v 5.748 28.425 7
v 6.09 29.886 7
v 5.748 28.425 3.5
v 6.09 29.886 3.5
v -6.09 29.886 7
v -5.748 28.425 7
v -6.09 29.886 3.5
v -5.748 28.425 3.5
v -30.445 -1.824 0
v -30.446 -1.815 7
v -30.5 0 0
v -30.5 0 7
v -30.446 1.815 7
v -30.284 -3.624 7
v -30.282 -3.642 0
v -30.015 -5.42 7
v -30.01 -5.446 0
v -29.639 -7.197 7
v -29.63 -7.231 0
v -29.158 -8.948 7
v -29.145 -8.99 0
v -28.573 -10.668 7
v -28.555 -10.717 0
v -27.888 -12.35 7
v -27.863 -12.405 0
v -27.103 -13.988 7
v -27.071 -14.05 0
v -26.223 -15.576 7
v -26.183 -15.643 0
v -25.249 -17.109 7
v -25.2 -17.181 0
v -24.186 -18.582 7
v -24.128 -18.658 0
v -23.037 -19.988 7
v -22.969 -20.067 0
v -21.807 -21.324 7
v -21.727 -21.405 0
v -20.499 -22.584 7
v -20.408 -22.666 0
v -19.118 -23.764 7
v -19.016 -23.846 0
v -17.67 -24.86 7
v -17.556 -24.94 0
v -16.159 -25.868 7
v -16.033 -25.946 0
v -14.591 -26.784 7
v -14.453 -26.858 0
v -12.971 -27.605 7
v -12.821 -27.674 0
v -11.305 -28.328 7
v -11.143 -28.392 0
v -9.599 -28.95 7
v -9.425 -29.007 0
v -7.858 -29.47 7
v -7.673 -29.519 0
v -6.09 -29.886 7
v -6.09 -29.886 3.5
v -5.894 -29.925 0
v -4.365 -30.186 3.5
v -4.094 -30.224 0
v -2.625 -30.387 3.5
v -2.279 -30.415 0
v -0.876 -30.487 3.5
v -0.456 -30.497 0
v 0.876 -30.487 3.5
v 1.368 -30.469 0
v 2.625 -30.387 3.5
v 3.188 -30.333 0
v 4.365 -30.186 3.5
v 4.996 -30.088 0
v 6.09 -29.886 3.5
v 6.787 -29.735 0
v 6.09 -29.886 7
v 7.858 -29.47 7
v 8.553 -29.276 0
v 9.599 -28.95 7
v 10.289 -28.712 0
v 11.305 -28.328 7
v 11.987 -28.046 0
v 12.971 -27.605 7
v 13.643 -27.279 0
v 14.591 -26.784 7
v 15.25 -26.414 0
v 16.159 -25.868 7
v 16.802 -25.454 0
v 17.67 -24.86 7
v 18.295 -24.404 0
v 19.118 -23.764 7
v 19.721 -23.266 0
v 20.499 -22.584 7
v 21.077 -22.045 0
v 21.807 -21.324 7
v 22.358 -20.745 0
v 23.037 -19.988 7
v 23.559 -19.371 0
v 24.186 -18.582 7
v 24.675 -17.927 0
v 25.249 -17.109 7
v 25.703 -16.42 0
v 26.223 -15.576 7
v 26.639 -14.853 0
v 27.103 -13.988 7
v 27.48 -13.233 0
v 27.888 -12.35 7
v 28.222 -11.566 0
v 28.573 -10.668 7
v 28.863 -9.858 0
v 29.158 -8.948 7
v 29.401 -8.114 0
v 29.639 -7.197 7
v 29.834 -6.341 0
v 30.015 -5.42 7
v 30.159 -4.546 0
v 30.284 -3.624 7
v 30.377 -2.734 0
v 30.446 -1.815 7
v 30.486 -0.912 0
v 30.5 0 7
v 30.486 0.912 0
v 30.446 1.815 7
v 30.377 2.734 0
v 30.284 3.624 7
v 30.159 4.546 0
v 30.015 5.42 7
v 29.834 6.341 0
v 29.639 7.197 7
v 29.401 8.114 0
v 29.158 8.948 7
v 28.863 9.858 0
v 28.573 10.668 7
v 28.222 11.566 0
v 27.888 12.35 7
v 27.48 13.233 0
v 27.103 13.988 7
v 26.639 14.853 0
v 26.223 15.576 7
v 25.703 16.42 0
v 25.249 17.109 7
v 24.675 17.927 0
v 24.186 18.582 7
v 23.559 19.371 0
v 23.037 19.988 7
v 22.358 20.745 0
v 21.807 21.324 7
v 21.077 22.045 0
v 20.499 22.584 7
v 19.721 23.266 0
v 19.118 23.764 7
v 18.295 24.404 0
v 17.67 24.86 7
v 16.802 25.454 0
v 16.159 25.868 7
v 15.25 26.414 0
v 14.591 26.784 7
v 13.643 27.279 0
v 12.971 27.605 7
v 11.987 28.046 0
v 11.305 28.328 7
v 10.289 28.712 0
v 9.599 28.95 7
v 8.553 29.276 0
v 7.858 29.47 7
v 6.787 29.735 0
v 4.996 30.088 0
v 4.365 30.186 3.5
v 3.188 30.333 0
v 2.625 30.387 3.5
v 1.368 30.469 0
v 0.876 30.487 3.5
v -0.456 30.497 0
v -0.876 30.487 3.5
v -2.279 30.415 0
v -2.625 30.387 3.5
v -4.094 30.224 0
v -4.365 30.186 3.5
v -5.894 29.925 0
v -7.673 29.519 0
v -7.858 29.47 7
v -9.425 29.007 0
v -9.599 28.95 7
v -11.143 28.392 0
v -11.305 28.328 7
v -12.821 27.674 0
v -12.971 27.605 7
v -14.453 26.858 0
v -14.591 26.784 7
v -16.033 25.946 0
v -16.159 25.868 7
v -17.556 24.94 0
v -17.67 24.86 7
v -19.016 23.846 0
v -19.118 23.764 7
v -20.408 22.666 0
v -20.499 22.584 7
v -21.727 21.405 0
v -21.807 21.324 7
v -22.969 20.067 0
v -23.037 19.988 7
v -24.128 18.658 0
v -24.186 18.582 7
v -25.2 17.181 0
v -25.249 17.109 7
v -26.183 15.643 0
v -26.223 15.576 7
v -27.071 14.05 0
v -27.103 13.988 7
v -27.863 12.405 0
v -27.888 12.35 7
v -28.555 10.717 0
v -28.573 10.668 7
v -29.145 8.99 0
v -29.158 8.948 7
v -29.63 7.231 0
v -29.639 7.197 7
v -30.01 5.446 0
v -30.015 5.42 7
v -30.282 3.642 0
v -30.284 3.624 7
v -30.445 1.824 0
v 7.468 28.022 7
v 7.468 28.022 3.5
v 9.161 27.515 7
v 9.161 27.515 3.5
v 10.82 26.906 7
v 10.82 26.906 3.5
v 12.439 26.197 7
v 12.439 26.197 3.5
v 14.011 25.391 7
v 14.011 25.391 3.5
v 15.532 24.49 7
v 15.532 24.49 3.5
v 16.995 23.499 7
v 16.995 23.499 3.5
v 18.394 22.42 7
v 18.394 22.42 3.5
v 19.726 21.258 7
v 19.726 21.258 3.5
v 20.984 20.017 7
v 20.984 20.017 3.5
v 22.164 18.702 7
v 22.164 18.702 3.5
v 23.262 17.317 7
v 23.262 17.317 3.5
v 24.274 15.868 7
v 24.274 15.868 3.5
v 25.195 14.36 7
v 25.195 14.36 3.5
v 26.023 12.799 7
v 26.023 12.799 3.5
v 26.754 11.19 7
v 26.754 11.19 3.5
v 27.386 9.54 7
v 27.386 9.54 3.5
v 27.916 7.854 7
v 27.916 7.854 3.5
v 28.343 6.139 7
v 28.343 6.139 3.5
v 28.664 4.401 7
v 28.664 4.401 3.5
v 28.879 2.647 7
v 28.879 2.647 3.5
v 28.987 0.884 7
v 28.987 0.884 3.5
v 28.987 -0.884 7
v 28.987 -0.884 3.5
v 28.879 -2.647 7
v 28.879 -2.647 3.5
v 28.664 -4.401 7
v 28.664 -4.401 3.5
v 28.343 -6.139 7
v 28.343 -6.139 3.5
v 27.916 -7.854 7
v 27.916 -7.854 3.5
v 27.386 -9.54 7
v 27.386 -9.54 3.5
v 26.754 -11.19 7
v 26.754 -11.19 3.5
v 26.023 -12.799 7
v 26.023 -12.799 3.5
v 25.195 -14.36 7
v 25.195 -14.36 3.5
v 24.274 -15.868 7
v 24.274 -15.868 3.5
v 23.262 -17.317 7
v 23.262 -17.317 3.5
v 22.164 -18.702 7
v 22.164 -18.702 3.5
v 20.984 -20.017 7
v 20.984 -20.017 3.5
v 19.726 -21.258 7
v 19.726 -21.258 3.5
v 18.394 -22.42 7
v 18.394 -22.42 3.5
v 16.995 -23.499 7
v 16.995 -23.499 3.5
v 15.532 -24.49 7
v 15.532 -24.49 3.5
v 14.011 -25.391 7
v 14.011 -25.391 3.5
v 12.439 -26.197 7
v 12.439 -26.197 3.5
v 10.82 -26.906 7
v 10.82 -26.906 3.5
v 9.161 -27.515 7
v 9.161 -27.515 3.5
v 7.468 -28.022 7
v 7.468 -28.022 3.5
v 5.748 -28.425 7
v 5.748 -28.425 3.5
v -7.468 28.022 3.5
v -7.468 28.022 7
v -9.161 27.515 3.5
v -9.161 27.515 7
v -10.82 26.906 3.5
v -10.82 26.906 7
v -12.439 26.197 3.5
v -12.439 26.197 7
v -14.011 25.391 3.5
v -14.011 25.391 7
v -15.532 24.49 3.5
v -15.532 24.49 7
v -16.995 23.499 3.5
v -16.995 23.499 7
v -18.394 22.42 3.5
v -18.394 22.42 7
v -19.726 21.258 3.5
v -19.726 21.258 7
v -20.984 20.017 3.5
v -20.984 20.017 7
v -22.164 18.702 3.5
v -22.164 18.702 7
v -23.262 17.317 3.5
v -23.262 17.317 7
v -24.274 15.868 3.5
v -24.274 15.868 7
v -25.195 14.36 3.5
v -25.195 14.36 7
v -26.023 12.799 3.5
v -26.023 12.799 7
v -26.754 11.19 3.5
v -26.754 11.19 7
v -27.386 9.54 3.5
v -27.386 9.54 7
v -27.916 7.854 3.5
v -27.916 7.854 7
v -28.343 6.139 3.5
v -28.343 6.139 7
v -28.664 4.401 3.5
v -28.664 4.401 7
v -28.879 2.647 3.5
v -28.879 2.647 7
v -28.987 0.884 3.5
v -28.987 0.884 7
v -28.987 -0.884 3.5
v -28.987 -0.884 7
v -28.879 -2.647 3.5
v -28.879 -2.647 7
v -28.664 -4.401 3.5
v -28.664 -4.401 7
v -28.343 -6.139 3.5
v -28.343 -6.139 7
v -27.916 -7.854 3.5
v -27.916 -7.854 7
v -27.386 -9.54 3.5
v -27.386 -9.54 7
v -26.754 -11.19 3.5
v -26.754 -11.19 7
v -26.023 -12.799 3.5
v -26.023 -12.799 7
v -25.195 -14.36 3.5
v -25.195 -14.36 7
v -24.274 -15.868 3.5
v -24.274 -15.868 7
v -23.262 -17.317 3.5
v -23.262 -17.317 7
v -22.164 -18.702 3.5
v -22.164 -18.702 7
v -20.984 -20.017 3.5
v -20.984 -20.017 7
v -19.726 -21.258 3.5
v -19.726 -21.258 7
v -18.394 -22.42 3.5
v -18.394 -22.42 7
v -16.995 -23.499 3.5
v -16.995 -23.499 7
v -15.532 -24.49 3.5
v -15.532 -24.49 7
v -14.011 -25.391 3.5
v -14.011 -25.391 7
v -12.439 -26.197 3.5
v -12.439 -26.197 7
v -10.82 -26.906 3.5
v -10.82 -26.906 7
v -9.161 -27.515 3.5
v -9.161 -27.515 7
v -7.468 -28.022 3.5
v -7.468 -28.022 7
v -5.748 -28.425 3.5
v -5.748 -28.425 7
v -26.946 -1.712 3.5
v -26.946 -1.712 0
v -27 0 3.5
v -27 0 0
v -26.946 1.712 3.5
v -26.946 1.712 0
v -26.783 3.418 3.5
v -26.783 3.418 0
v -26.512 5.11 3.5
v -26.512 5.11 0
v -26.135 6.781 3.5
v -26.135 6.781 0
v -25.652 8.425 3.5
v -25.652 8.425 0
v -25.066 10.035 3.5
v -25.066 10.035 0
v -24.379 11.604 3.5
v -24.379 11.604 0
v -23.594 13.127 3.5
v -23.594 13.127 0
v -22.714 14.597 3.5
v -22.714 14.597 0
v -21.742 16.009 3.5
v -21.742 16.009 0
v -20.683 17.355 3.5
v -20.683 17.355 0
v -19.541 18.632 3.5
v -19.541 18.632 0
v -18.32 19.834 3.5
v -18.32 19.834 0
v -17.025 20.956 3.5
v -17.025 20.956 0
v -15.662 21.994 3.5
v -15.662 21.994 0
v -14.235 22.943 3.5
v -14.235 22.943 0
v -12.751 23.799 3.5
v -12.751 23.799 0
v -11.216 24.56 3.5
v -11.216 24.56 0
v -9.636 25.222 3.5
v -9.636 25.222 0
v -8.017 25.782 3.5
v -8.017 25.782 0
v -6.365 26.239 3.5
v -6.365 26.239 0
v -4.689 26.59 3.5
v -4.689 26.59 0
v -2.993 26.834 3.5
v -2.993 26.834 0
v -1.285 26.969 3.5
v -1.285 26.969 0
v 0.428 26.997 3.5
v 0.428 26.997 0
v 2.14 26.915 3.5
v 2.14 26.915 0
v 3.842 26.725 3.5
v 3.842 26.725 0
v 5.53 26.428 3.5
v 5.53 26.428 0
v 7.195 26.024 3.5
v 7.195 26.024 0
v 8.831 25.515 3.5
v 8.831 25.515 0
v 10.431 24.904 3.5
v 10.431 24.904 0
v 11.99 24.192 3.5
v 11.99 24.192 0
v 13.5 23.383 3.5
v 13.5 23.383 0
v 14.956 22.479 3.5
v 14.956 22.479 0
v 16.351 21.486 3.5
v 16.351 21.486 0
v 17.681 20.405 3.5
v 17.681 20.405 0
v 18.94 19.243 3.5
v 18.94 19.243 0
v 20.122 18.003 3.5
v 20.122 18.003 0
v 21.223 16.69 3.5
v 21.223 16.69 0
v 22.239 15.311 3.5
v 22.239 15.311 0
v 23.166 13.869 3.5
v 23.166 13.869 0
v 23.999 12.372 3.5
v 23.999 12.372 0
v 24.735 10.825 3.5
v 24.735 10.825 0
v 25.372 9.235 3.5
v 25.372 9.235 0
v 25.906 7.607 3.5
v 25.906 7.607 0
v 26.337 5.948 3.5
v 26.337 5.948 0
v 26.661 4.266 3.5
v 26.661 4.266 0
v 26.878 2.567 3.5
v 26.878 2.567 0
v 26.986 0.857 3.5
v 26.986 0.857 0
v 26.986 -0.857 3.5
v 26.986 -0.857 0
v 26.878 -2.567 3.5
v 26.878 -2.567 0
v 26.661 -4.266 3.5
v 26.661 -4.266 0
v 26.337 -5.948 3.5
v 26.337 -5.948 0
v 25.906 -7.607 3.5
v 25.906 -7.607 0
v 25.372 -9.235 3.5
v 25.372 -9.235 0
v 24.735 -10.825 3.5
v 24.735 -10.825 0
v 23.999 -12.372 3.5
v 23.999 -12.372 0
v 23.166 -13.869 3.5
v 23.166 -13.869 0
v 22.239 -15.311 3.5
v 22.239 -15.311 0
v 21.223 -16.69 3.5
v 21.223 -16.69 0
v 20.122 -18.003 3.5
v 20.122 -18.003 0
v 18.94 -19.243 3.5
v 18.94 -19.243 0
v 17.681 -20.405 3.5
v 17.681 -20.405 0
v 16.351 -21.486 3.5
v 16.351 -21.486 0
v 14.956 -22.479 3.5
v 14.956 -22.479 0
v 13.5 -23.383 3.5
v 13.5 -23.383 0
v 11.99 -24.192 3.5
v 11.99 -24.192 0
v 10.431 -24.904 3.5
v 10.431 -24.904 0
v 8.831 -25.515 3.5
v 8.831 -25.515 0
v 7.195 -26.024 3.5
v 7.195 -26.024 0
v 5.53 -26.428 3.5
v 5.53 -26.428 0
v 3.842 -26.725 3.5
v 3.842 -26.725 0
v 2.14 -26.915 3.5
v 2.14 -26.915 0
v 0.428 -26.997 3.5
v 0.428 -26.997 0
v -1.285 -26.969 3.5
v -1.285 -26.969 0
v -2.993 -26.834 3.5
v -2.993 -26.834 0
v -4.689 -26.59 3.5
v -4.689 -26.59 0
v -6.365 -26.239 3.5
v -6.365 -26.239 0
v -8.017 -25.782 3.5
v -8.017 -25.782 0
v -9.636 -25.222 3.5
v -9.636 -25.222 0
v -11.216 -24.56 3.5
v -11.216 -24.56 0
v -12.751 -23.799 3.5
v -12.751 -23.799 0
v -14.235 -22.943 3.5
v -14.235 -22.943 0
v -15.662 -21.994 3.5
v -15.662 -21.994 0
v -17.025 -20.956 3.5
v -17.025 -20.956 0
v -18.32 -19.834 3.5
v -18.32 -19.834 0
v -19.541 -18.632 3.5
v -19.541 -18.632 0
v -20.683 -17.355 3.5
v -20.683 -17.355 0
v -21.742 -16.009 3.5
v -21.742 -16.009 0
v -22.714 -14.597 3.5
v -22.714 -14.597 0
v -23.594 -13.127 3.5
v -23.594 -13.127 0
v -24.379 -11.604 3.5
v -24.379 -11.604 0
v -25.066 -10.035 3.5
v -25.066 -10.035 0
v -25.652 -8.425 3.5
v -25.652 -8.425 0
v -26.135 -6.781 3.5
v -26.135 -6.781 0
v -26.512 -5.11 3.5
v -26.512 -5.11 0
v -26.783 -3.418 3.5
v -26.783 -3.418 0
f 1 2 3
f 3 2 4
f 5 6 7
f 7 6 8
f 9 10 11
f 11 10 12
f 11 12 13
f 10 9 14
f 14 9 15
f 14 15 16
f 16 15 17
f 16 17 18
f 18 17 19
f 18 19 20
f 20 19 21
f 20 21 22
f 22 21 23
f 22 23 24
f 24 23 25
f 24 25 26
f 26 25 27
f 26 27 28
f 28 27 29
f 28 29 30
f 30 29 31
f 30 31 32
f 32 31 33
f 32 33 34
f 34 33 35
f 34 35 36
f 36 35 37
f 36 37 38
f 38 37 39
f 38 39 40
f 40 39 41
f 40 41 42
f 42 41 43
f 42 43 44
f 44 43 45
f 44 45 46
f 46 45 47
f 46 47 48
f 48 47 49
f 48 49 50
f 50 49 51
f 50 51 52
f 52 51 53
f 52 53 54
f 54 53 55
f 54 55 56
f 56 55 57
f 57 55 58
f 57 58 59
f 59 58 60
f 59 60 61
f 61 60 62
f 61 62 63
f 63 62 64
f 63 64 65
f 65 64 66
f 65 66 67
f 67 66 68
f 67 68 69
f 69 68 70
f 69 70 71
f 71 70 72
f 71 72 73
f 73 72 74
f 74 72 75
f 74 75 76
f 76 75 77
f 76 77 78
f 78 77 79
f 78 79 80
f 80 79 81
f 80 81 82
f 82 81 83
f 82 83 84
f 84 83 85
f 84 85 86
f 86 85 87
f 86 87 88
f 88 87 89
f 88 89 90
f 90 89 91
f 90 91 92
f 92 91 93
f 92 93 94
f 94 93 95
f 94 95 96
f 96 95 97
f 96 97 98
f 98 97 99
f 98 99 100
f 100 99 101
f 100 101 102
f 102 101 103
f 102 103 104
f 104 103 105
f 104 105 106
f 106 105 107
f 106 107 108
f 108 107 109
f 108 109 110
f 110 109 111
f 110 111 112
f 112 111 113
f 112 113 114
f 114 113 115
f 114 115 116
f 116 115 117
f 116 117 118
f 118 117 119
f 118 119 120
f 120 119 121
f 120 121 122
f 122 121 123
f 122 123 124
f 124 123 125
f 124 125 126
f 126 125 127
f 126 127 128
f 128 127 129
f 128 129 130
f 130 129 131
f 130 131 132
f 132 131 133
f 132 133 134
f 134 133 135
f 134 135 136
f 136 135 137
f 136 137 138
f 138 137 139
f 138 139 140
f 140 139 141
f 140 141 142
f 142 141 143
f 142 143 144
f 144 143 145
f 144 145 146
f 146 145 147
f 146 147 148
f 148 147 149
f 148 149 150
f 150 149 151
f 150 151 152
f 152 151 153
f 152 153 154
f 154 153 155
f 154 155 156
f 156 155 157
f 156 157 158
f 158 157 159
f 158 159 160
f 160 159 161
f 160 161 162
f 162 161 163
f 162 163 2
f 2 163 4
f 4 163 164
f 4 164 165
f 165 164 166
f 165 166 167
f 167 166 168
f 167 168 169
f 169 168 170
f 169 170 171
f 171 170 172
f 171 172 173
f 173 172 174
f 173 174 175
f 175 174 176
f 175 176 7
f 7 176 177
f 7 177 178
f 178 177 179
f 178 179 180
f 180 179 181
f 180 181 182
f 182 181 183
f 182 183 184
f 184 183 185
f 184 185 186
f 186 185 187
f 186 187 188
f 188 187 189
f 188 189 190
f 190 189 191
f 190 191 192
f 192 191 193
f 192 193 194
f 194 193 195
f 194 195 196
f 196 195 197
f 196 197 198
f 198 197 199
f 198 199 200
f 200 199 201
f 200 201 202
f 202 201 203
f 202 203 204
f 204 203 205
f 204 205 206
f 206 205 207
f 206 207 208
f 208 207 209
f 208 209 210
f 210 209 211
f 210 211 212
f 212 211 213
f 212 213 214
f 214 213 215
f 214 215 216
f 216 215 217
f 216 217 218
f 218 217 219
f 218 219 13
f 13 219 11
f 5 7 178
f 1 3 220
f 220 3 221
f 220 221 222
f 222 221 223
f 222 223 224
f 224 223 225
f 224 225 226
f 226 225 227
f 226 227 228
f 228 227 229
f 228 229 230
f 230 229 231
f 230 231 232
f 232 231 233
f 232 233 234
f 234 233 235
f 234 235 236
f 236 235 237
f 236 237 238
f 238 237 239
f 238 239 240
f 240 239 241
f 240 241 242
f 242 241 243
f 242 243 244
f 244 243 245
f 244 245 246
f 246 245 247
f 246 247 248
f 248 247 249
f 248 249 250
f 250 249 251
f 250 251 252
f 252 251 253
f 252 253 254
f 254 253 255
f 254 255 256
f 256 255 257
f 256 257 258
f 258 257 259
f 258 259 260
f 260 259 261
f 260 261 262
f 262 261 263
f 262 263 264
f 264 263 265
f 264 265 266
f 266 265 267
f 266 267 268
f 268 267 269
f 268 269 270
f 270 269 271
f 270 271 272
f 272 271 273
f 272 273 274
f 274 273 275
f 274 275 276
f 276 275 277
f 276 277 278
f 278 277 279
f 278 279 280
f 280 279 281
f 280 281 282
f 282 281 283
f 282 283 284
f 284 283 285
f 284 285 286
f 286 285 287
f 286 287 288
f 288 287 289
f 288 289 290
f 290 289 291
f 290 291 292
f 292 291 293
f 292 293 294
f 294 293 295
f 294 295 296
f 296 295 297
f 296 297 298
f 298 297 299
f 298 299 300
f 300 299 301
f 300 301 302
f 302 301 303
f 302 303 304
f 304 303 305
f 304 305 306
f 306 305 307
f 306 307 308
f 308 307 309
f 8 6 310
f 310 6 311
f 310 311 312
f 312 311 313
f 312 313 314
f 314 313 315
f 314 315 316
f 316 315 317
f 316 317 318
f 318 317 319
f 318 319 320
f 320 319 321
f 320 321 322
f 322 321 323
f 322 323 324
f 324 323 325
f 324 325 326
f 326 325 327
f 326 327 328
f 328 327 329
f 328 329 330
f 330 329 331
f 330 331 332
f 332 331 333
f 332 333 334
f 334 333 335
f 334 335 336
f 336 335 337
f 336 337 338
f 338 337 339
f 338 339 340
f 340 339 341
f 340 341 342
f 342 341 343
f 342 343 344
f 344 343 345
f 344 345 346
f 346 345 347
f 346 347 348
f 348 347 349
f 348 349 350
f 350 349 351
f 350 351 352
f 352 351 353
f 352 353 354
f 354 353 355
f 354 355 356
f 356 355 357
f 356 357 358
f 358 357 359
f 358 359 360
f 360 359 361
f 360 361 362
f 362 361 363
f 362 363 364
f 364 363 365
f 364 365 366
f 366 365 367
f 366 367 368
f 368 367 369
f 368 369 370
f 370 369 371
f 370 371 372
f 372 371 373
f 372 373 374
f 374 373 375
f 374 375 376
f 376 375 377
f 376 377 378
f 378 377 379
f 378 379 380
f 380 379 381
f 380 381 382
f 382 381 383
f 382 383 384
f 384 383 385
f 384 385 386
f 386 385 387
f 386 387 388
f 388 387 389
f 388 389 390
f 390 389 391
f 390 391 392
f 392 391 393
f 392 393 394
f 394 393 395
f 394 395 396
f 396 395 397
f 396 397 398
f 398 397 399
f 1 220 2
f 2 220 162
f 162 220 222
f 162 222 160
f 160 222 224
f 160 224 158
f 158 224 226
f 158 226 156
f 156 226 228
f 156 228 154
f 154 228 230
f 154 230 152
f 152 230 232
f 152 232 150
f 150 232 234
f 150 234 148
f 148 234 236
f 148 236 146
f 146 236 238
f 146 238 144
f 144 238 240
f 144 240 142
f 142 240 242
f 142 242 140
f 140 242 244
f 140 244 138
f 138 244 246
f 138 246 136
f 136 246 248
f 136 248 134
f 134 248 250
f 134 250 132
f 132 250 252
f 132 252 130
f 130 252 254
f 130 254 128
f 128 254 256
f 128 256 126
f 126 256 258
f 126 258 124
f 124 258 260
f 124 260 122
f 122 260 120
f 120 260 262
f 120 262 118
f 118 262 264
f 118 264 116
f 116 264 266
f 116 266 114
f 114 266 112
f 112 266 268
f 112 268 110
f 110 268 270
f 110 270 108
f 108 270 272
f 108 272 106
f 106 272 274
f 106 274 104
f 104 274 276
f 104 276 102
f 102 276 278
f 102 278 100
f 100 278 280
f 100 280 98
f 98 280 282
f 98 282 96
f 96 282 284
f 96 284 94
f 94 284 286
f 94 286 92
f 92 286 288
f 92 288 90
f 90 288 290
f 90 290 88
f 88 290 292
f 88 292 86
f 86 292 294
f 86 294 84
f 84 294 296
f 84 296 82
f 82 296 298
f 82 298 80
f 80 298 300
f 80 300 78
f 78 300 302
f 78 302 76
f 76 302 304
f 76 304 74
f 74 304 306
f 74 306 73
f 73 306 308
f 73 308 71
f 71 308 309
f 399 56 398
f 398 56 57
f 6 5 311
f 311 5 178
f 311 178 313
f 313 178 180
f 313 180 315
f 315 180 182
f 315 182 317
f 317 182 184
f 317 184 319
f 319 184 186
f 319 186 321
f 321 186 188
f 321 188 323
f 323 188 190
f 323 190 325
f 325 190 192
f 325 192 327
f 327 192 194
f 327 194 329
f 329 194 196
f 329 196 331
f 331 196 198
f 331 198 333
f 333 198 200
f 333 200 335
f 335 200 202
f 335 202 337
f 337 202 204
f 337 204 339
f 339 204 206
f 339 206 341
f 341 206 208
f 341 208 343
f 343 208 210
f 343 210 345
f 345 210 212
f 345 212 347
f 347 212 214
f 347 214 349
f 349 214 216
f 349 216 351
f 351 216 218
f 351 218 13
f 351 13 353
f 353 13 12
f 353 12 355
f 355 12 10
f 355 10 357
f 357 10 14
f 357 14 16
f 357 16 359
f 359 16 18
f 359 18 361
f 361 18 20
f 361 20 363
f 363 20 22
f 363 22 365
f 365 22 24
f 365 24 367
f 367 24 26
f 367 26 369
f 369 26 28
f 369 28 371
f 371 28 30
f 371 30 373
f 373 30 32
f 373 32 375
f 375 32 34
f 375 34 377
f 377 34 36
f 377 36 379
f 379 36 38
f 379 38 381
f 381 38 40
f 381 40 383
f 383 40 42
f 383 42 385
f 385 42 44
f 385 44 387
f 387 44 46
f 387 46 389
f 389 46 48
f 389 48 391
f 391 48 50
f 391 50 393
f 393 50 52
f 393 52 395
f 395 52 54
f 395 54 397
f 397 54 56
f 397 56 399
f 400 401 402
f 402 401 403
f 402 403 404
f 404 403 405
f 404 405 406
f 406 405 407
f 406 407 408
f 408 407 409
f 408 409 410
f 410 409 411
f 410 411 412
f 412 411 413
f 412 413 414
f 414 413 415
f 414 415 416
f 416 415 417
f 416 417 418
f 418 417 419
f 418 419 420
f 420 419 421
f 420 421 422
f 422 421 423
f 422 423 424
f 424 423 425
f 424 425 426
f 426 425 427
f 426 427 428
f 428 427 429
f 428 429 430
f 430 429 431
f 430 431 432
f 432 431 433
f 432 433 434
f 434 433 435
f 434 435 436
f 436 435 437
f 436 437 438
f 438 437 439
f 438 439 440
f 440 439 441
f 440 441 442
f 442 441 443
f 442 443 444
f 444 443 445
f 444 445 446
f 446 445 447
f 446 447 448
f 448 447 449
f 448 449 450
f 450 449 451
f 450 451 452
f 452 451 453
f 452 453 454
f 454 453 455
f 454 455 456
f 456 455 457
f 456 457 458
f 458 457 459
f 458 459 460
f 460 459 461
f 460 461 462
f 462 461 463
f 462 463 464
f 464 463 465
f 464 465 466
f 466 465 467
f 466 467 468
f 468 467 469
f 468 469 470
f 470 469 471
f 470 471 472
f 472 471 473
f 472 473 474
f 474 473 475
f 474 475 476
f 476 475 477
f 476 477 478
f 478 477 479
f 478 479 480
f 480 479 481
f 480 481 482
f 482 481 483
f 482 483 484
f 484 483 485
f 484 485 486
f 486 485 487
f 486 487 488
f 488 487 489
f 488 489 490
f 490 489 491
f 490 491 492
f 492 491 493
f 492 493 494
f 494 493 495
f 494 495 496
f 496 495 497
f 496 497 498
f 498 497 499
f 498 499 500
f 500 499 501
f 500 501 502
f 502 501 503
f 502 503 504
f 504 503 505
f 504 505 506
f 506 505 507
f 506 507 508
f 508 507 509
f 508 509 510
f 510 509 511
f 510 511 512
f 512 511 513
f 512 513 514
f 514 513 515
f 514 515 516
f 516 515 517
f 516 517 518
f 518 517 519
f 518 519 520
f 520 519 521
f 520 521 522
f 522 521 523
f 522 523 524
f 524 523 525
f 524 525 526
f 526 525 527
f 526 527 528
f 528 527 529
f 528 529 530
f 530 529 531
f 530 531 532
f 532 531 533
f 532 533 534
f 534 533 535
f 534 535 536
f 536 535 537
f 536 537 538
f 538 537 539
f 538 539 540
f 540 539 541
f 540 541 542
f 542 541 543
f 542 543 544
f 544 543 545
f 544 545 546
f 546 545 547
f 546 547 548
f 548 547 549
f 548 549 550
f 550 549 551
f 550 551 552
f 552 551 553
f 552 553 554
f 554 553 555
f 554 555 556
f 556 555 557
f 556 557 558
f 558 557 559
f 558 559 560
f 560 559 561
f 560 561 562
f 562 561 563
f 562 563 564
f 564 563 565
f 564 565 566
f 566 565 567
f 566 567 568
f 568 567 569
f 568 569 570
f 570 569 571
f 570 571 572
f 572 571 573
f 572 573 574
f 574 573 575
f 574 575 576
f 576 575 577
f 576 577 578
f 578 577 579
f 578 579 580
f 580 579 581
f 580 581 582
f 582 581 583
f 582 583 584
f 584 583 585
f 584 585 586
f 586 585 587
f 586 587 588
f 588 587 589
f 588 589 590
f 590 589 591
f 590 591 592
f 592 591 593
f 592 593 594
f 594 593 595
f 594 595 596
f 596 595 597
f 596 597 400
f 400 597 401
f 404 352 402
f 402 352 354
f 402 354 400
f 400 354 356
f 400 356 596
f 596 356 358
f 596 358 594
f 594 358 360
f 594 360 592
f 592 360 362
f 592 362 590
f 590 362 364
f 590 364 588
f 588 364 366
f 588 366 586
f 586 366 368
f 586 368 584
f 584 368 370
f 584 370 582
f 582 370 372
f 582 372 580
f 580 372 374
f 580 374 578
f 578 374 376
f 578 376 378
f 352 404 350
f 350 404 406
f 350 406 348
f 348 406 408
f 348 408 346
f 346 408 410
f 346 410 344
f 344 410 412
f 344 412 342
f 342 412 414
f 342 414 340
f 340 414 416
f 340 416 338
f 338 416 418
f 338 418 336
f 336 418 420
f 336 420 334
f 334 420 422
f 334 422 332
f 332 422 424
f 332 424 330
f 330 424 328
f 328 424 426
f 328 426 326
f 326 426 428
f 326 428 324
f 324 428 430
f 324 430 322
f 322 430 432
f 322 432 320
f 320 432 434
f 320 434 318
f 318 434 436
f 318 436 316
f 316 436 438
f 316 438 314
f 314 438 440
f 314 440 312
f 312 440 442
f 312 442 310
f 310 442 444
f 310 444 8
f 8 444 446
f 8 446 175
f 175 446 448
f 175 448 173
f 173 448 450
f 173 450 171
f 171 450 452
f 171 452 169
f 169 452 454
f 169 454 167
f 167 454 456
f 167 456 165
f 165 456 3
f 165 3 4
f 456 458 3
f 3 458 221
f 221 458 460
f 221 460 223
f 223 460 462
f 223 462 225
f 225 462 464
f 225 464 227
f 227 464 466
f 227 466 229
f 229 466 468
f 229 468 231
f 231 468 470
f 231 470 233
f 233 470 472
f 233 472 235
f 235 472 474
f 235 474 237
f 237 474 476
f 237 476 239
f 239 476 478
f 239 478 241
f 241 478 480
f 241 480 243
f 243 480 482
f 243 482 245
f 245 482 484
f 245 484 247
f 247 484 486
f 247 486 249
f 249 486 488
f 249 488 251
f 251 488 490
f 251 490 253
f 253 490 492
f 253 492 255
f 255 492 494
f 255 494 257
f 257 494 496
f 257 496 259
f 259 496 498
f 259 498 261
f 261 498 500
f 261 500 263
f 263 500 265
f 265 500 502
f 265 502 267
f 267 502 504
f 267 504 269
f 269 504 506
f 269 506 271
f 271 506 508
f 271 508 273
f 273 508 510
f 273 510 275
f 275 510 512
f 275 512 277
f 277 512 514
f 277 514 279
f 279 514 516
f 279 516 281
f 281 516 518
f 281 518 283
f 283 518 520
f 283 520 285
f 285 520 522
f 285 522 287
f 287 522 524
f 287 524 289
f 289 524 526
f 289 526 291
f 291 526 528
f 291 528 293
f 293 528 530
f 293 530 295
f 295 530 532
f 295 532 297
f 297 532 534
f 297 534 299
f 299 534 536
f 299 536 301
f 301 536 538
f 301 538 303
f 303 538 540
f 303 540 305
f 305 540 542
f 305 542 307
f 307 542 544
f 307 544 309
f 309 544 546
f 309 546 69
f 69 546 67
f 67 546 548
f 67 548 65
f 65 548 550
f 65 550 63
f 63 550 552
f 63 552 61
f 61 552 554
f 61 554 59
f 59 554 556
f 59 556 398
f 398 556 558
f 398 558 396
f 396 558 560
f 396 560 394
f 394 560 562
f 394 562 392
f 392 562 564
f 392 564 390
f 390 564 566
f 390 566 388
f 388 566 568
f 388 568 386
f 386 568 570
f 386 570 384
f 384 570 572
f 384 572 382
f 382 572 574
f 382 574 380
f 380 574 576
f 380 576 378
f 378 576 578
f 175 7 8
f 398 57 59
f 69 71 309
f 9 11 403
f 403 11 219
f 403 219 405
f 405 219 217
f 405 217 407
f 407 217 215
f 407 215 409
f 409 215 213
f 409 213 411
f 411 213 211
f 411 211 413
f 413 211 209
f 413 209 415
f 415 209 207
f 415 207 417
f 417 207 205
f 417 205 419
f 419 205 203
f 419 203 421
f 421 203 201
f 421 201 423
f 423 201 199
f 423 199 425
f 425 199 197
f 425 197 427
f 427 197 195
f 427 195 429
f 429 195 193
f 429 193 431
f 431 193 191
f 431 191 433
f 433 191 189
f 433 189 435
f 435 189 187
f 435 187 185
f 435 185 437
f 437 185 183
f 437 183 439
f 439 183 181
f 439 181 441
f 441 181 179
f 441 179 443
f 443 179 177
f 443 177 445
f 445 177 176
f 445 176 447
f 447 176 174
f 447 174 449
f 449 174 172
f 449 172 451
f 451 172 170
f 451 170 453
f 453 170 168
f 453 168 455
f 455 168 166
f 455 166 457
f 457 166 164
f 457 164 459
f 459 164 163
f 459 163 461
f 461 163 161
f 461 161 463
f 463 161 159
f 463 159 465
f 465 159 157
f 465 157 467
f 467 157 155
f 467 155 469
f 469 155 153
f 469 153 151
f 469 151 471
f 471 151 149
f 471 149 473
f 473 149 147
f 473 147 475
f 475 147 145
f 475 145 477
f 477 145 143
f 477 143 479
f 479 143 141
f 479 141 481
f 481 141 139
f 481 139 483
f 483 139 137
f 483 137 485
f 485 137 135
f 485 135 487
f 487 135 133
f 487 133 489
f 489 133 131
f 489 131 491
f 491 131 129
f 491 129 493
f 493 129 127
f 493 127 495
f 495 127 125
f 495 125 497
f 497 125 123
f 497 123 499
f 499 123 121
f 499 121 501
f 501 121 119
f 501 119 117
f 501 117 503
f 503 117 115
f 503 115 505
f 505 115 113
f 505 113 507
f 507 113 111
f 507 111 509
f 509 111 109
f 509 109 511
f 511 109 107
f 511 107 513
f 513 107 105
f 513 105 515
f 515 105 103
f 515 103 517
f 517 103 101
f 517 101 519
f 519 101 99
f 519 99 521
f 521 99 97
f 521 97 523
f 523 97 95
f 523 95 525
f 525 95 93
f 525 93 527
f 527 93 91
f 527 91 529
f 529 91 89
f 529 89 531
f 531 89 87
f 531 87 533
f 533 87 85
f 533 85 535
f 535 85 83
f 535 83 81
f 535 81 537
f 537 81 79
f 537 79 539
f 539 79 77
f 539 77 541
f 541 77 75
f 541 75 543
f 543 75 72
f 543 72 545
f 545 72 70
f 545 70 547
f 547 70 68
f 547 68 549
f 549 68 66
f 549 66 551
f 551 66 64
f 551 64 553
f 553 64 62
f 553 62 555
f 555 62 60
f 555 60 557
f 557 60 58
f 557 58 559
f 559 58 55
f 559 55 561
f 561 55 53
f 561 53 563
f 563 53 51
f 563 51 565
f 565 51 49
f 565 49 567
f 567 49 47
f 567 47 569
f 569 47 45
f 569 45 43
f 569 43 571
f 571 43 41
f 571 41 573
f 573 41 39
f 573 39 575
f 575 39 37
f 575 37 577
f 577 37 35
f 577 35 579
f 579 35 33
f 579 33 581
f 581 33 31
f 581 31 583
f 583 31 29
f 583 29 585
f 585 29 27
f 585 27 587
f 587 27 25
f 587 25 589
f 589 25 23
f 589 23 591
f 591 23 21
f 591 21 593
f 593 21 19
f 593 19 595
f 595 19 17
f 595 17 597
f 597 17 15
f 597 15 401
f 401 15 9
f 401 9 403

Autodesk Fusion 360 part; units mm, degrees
sketch "Sketch1" plane through (0, 0, 0) normal (0, 0, 1) x (1, 0, 0)
  circle A0 centre (0, 0) radius 27
  circle A1 centre (0, 0) radius 29
  dimension "d1" = 54
  dimension "d2" = 58
extrude "Extrude1" add sketch "Sketch1" along normal blind 3.5
sketch "Sketch2" plane through (0, 0, 0) normal (0, 0, -1) x (1, 0, 0)
  circle A0 centre (0, 0) radius 27
  circle A1 centre (0, 0) radius 29
  circle A2 centre (0, 0) radius 30.5
  dimension "d5" = 61
extrude "Extrude2" add sketch "Sketch2" against normal blind 7 contours A2
sketch "Sketch3" plane through (0, 0, 7) normal (0, 0, 1) x (-1, 0, 0)
  circle A0 centre (0, 0) radius 29
  circle A1 centre (0, 0) radius 30.5
  line L0 (0, 29.5) -> (-6, 29.5) construction
  line L1 (0, 26) -> (0, 34.5) construction
  line L2 (0, 29.5) -> (6, 29.5) construction
  line L3 (5.7478, 28.4247) -> (6.0905, 29.8857)
  line L4 (-5.7478, 28.4247) -> (-6.0905, 29.8857)
  line L5 (-6, 0) -> (15.5156, 0) construction
  line L6 (5.7478, -28.4247) -> (6.0905, -29.8857)
  line L7 (-5.7478, -28.4247) -> (-6.0905, -29.8857)
  dimension "d8" = 6
extrude "Extrude3" cut sketch "Sketch3" against normal blind 3.5 contours A0 A1 L3 L4
extrude "Extrude4" cut sketch "Sketch3" against normal blind 3.5 contours A0 A1 L6 L7
